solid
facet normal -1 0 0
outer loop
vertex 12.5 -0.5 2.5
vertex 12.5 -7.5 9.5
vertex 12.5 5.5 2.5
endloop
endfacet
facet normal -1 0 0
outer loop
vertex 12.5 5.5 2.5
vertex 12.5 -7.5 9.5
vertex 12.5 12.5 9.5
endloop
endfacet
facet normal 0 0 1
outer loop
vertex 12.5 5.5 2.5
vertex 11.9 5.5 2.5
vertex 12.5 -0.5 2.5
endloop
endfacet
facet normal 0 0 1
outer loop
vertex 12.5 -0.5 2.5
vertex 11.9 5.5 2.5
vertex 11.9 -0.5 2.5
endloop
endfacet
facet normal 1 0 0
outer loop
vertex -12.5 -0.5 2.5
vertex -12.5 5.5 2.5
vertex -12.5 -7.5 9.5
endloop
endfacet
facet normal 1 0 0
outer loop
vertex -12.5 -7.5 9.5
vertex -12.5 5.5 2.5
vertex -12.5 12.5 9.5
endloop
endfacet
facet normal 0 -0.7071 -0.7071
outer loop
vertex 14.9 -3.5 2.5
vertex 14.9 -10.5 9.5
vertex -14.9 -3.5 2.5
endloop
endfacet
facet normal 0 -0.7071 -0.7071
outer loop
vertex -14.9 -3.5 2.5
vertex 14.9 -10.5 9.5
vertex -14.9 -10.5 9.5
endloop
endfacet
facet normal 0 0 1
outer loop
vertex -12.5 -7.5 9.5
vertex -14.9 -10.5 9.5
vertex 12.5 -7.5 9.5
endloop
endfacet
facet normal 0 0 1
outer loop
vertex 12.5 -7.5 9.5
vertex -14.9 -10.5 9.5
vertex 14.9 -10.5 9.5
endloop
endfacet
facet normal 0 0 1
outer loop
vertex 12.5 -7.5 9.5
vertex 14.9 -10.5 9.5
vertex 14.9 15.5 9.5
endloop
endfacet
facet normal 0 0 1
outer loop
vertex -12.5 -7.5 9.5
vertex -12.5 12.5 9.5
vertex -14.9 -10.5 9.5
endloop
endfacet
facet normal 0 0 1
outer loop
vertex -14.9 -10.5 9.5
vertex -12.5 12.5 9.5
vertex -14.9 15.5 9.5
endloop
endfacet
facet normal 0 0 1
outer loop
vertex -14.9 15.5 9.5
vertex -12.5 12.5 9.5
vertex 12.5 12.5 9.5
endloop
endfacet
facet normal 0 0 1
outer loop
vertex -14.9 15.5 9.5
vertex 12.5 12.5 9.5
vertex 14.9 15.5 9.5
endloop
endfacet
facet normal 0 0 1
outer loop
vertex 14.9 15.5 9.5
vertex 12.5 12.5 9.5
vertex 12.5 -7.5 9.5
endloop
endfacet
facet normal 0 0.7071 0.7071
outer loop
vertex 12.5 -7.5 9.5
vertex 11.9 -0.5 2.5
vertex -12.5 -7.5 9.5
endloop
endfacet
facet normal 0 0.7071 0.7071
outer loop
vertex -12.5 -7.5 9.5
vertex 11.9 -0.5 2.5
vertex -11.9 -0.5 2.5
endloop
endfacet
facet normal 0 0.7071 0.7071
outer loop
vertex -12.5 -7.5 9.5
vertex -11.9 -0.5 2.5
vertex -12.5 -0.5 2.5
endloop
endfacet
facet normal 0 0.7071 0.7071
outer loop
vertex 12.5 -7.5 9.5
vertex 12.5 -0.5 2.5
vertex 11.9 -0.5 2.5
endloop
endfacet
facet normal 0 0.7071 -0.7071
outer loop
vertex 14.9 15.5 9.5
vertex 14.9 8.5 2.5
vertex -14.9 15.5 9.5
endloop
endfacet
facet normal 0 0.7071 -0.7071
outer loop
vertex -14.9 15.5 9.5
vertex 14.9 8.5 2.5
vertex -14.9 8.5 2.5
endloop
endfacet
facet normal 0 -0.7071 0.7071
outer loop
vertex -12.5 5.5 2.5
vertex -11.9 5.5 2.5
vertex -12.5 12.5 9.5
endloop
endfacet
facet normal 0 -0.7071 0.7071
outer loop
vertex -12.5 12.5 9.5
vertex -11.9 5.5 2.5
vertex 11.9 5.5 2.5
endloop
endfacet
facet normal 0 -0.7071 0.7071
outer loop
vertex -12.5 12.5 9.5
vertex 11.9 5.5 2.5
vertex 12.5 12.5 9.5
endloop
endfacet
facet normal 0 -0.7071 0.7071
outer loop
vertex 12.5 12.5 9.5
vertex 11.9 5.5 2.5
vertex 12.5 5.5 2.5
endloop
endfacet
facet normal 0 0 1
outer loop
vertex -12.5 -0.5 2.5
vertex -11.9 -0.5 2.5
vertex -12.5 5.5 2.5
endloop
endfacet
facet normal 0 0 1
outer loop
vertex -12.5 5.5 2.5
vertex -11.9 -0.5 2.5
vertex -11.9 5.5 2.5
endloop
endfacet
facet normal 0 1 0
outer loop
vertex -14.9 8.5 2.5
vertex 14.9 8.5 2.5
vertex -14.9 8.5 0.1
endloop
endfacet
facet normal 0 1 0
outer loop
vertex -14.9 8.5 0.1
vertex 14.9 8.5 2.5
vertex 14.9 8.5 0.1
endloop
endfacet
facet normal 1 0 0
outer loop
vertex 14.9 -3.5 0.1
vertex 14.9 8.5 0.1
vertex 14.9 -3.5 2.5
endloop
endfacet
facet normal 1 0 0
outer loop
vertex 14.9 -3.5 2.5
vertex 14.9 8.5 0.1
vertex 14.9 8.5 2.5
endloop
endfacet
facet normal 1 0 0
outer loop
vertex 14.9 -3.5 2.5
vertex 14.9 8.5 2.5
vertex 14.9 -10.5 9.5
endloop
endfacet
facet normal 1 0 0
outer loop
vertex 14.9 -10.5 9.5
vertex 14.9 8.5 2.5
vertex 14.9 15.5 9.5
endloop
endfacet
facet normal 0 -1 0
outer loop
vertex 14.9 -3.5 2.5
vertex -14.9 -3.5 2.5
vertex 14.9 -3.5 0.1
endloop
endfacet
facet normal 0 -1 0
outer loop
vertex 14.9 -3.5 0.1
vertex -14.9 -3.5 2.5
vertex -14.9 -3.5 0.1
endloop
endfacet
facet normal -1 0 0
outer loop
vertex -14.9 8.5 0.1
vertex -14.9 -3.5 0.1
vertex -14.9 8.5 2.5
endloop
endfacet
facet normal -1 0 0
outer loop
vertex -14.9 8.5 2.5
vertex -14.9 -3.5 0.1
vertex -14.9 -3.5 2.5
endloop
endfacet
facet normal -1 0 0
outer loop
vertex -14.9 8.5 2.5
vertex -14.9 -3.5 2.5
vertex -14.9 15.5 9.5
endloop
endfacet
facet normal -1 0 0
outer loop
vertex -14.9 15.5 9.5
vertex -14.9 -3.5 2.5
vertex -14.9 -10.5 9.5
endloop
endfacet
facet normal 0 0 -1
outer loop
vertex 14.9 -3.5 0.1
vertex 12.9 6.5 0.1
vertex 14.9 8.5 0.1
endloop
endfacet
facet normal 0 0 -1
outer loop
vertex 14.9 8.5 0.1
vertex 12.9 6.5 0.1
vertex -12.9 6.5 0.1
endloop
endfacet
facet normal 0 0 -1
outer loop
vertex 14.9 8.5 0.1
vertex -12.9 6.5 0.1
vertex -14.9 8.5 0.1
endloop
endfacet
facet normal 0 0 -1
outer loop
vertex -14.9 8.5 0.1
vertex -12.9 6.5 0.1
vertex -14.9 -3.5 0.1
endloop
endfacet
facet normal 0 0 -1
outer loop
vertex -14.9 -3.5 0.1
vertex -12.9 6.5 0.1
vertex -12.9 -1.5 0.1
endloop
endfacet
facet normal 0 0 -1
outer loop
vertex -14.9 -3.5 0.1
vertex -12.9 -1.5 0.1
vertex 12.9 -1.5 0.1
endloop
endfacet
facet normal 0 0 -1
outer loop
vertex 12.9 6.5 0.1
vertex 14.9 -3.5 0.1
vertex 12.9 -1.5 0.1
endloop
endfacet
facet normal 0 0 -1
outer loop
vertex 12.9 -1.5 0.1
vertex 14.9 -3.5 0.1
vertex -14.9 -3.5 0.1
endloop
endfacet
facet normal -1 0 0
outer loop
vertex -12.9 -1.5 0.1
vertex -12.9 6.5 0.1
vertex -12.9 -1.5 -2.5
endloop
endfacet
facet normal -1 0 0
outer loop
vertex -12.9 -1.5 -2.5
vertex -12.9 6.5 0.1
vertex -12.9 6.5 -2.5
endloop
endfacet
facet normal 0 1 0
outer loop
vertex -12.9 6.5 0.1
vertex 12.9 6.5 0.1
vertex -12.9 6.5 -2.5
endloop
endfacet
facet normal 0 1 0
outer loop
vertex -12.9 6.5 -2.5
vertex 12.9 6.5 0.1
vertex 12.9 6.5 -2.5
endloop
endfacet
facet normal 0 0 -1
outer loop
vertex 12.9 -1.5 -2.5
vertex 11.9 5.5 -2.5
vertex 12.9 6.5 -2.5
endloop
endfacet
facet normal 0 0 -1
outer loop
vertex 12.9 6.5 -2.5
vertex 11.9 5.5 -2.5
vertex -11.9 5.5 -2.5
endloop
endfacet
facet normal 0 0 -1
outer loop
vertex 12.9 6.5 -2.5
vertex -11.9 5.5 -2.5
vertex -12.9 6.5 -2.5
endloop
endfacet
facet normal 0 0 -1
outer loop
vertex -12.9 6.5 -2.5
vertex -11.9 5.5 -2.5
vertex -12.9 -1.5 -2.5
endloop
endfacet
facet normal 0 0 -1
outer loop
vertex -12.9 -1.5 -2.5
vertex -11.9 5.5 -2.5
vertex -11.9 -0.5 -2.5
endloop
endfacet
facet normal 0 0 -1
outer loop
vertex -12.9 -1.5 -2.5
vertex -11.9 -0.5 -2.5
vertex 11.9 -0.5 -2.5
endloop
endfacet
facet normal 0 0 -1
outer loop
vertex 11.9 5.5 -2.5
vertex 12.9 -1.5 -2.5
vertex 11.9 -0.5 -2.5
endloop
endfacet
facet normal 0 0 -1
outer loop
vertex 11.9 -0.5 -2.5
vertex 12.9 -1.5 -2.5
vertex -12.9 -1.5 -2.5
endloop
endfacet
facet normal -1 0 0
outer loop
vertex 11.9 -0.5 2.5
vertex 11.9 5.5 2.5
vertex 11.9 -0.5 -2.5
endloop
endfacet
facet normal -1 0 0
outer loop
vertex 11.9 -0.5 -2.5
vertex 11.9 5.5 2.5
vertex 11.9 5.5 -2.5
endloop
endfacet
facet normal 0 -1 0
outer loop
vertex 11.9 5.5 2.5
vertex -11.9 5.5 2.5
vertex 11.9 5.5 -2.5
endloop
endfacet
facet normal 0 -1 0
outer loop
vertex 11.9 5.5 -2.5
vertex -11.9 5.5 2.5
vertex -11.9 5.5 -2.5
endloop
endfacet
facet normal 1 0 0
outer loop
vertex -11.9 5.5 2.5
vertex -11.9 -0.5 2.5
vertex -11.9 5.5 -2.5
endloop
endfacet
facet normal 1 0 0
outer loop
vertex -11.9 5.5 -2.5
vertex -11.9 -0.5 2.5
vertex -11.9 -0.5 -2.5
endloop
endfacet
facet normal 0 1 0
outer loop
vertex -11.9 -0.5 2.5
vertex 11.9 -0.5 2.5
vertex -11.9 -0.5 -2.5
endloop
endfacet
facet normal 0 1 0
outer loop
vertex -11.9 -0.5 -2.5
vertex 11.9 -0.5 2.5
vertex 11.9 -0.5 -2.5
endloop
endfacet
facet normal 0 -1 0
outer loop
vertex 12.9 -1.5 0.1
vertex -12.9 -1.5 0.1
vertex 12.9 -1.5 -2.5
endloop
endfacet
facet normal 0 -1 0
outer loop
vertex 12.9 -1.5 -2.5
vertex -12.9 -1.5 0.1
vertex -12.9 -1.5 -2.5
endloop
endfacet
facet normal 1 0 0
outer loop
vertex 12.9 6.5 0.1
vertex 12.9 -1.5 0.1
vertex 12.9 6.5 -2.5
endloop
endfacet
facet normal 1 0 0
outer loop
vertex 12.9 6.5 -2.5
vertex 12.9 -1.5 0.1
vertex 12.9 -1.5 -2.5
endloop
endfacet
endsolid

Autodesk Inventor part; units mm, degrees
ref_plane "YZ Plane" through (0, 0, 0) normal (1, 0, 0) x (0, 1, 0)
ref_plane "XZ Plane" through (0, 0, 0) normal (0, 1, 0) x (-1, 0, 0)
ref_plane "XY Plane" through (0, 0, 0) normal (0, 0, 1) x (1, 0, 0)
sketch "Sketch1" plane through (0, 0, 0) normal (0, 0, 1) x (1, 0, 0)
  line L0 (24.7, 6.5) -> (13, 6.5) projected
  line L1 (13, 6.5) -> (13, -1.6) projected
  line L2 (13, -1.6) -> (-13, -1.6) projected
  line L3 (-13, -1.6) -> (-13, 6.5) projected
  line L4 (-13, 6.5) -> (-24.7, 6.5) projected
  line L5 (-24.7, 6.5) -> (-24.7, -6.5) projected
  line L6 (-24.7, -6.5) -> (24.7, -6.5) projected
  line L7 (24.7, -6.5) -> (24.7, 6.5) projected
  line L8 (-24.7, 6.6) -> (24.7, 6.6) projected
  line L9 (24.7, 6.6) -> (24.7, 9.6) projected
  line L10 (-24.7, 9.6) -> (24.7, 9.6) projected
  line L11 (-24.7, 6.6) -> (-24.7, 9.6) projected
  line L12 (-12.9, -1.5) -> (12.9, -1.5)
  line L13 (12.9, -1.5) -> (12.9, 6.5)
  line L14 (12.9, 6.5) -> (-12.9, 6.5)
  line L15 (-12.9, 6.5) -> (-12.9, -1.5)
  line L16 (11.9, -0.5) -> (-11.9, -0.5)
  line L17 (-11.9, -0.5) -> (-11.9, 5.5)
  line L18 (-11.9, 5.5) -> (11.9, 5.5)
  line L19 (11.9, 5.5) -> (11.9, -0.5)
  point P0 (0, 0)
  dimension "d0" = 0.1
  dimension "d1" = 0.1
  dimension "d2" = 0.1
  dimension "d3" = 0.1
  dimension "d4" = 1
extrude "Extrusion1" add sketch "Sketch1" along normal mid plane 5 contours L15 L14 L13 L12
ref_plane "Work Plane1" through (0, 0, 0.1) normal (0, 0, 1) x (1, 0, 0)
sketch "Sketch2" plane through (0, 0, 0.1) normal (0, 0, 1) x (1, 0, 0)
  line L0 (12.9, -1.5) -> (12.9, 6.5) projected
  line L1 (12.9, 6.5) -> (-12.9, 6.5) projected
  line L2 (-12.9, 6.5) -> (-12.9, -1.5) projected
  line L3 (-12.9, -1.5) -> (12.9, -1.5) projected
  line L4 (11.9, -0.5) -> (-11.9, -0.5) projected
  line L5 (-11.9, -0.5) -> (-11.9, 5.5) projected
  line L6 (-11.9, 5.5) -> (11.9, 5.5) projected
  line L7 (11.9, 5.5) -> (11.9, -0.5) projected
  line L8 (-14.9, -3.5) -> (-14.9, 8.5)
  line L9 (-14.9, 8.5) -> (14.9, 8.5)
  line L10 (14.9, 8.5) -> (14.9, -3.5)
  line L11 (14.9, -3.5) -> (-14.9, -3.5)
  point P0 (0, 0)
  dimension "d7" = 2
extrude "Extrusion2" add sketch "Sketch2" along normal up to surface (2.4 mm away) contours L8 L9 L10 L11
sketch "Sketch3" plane through (0, 0, 0) normal (1, 0, 0) x (0, 1, 0)
  line L0 (5.5, -2.5) -> (5.5, 2.5) projected
  line L1 (5.5, 2.5) -> (12.5, 9.5)
  line L2 (12.5, 9.5) -> (15.5, 9.5)
  line L3 (8.5, 2.5) -> (-3.5, 2.5) projected
  line L4 (15.5, 9.5) -> (8.5, 2.5)
  line L5 (2.5, 2.5) -> (2.5, -1.8048)
  line L6 (-0.5, 2.5) -> (-7.5, 9.5)
  line L7 (-7.5, 9.5) -> (-10.5, 9.5)
  line L8 (-10.5, 9.5) -> (-3.5, 2.5)
  point P0 (0, 0)
  dimension "d10" = 20
  dimension "d11" = 45
extrude "Extrusion3" add sketch "Sketch3" along normal mid plane 25
sketch "Sketch4" plane through (-12.5, 0, 0) normal (-1, 0, 0) x (0, 0, 1)
  line L0 (9.5, 12.5) -> (9.5, 15.5) projected
  line L1 (9.5, 15.5) -> (2.5, 8.5) projected
  line L2 (2.5, 5.5) -> (2.5, 8.5) projected
  line L3 (2.5, 5.5) -> (9.5, 12.5) projected
  line L4 (2.5, -3.5) -> (2.5, -0.5) projected
  line L5 (2.5, -3.5) -> (9.5, -10.5) projected
  line L6 (9.5, -10.5) -> (9.5, -7.5) projected
  line L7 (9.5, -7.5) -> (2.5, -0.5) projected
  line L8 (2.5, -3.5) -> (2.5, 8.5) projected
  line L9 (9.5, 15.5) -> (9.5, 12.5) projected
  line L10 (9.5, 12.5) -> (9.5, -7.5)
  point P0 (0, 0)
extrude "Extrusion4" add sketch "Sketch4" along normal up to surface (2.4 mm away)
mirror "Mirror1" about plane through (0, 0, 0) normal (1, 0, 0) of "Extrusion4"
properties part number "solids hopper"
